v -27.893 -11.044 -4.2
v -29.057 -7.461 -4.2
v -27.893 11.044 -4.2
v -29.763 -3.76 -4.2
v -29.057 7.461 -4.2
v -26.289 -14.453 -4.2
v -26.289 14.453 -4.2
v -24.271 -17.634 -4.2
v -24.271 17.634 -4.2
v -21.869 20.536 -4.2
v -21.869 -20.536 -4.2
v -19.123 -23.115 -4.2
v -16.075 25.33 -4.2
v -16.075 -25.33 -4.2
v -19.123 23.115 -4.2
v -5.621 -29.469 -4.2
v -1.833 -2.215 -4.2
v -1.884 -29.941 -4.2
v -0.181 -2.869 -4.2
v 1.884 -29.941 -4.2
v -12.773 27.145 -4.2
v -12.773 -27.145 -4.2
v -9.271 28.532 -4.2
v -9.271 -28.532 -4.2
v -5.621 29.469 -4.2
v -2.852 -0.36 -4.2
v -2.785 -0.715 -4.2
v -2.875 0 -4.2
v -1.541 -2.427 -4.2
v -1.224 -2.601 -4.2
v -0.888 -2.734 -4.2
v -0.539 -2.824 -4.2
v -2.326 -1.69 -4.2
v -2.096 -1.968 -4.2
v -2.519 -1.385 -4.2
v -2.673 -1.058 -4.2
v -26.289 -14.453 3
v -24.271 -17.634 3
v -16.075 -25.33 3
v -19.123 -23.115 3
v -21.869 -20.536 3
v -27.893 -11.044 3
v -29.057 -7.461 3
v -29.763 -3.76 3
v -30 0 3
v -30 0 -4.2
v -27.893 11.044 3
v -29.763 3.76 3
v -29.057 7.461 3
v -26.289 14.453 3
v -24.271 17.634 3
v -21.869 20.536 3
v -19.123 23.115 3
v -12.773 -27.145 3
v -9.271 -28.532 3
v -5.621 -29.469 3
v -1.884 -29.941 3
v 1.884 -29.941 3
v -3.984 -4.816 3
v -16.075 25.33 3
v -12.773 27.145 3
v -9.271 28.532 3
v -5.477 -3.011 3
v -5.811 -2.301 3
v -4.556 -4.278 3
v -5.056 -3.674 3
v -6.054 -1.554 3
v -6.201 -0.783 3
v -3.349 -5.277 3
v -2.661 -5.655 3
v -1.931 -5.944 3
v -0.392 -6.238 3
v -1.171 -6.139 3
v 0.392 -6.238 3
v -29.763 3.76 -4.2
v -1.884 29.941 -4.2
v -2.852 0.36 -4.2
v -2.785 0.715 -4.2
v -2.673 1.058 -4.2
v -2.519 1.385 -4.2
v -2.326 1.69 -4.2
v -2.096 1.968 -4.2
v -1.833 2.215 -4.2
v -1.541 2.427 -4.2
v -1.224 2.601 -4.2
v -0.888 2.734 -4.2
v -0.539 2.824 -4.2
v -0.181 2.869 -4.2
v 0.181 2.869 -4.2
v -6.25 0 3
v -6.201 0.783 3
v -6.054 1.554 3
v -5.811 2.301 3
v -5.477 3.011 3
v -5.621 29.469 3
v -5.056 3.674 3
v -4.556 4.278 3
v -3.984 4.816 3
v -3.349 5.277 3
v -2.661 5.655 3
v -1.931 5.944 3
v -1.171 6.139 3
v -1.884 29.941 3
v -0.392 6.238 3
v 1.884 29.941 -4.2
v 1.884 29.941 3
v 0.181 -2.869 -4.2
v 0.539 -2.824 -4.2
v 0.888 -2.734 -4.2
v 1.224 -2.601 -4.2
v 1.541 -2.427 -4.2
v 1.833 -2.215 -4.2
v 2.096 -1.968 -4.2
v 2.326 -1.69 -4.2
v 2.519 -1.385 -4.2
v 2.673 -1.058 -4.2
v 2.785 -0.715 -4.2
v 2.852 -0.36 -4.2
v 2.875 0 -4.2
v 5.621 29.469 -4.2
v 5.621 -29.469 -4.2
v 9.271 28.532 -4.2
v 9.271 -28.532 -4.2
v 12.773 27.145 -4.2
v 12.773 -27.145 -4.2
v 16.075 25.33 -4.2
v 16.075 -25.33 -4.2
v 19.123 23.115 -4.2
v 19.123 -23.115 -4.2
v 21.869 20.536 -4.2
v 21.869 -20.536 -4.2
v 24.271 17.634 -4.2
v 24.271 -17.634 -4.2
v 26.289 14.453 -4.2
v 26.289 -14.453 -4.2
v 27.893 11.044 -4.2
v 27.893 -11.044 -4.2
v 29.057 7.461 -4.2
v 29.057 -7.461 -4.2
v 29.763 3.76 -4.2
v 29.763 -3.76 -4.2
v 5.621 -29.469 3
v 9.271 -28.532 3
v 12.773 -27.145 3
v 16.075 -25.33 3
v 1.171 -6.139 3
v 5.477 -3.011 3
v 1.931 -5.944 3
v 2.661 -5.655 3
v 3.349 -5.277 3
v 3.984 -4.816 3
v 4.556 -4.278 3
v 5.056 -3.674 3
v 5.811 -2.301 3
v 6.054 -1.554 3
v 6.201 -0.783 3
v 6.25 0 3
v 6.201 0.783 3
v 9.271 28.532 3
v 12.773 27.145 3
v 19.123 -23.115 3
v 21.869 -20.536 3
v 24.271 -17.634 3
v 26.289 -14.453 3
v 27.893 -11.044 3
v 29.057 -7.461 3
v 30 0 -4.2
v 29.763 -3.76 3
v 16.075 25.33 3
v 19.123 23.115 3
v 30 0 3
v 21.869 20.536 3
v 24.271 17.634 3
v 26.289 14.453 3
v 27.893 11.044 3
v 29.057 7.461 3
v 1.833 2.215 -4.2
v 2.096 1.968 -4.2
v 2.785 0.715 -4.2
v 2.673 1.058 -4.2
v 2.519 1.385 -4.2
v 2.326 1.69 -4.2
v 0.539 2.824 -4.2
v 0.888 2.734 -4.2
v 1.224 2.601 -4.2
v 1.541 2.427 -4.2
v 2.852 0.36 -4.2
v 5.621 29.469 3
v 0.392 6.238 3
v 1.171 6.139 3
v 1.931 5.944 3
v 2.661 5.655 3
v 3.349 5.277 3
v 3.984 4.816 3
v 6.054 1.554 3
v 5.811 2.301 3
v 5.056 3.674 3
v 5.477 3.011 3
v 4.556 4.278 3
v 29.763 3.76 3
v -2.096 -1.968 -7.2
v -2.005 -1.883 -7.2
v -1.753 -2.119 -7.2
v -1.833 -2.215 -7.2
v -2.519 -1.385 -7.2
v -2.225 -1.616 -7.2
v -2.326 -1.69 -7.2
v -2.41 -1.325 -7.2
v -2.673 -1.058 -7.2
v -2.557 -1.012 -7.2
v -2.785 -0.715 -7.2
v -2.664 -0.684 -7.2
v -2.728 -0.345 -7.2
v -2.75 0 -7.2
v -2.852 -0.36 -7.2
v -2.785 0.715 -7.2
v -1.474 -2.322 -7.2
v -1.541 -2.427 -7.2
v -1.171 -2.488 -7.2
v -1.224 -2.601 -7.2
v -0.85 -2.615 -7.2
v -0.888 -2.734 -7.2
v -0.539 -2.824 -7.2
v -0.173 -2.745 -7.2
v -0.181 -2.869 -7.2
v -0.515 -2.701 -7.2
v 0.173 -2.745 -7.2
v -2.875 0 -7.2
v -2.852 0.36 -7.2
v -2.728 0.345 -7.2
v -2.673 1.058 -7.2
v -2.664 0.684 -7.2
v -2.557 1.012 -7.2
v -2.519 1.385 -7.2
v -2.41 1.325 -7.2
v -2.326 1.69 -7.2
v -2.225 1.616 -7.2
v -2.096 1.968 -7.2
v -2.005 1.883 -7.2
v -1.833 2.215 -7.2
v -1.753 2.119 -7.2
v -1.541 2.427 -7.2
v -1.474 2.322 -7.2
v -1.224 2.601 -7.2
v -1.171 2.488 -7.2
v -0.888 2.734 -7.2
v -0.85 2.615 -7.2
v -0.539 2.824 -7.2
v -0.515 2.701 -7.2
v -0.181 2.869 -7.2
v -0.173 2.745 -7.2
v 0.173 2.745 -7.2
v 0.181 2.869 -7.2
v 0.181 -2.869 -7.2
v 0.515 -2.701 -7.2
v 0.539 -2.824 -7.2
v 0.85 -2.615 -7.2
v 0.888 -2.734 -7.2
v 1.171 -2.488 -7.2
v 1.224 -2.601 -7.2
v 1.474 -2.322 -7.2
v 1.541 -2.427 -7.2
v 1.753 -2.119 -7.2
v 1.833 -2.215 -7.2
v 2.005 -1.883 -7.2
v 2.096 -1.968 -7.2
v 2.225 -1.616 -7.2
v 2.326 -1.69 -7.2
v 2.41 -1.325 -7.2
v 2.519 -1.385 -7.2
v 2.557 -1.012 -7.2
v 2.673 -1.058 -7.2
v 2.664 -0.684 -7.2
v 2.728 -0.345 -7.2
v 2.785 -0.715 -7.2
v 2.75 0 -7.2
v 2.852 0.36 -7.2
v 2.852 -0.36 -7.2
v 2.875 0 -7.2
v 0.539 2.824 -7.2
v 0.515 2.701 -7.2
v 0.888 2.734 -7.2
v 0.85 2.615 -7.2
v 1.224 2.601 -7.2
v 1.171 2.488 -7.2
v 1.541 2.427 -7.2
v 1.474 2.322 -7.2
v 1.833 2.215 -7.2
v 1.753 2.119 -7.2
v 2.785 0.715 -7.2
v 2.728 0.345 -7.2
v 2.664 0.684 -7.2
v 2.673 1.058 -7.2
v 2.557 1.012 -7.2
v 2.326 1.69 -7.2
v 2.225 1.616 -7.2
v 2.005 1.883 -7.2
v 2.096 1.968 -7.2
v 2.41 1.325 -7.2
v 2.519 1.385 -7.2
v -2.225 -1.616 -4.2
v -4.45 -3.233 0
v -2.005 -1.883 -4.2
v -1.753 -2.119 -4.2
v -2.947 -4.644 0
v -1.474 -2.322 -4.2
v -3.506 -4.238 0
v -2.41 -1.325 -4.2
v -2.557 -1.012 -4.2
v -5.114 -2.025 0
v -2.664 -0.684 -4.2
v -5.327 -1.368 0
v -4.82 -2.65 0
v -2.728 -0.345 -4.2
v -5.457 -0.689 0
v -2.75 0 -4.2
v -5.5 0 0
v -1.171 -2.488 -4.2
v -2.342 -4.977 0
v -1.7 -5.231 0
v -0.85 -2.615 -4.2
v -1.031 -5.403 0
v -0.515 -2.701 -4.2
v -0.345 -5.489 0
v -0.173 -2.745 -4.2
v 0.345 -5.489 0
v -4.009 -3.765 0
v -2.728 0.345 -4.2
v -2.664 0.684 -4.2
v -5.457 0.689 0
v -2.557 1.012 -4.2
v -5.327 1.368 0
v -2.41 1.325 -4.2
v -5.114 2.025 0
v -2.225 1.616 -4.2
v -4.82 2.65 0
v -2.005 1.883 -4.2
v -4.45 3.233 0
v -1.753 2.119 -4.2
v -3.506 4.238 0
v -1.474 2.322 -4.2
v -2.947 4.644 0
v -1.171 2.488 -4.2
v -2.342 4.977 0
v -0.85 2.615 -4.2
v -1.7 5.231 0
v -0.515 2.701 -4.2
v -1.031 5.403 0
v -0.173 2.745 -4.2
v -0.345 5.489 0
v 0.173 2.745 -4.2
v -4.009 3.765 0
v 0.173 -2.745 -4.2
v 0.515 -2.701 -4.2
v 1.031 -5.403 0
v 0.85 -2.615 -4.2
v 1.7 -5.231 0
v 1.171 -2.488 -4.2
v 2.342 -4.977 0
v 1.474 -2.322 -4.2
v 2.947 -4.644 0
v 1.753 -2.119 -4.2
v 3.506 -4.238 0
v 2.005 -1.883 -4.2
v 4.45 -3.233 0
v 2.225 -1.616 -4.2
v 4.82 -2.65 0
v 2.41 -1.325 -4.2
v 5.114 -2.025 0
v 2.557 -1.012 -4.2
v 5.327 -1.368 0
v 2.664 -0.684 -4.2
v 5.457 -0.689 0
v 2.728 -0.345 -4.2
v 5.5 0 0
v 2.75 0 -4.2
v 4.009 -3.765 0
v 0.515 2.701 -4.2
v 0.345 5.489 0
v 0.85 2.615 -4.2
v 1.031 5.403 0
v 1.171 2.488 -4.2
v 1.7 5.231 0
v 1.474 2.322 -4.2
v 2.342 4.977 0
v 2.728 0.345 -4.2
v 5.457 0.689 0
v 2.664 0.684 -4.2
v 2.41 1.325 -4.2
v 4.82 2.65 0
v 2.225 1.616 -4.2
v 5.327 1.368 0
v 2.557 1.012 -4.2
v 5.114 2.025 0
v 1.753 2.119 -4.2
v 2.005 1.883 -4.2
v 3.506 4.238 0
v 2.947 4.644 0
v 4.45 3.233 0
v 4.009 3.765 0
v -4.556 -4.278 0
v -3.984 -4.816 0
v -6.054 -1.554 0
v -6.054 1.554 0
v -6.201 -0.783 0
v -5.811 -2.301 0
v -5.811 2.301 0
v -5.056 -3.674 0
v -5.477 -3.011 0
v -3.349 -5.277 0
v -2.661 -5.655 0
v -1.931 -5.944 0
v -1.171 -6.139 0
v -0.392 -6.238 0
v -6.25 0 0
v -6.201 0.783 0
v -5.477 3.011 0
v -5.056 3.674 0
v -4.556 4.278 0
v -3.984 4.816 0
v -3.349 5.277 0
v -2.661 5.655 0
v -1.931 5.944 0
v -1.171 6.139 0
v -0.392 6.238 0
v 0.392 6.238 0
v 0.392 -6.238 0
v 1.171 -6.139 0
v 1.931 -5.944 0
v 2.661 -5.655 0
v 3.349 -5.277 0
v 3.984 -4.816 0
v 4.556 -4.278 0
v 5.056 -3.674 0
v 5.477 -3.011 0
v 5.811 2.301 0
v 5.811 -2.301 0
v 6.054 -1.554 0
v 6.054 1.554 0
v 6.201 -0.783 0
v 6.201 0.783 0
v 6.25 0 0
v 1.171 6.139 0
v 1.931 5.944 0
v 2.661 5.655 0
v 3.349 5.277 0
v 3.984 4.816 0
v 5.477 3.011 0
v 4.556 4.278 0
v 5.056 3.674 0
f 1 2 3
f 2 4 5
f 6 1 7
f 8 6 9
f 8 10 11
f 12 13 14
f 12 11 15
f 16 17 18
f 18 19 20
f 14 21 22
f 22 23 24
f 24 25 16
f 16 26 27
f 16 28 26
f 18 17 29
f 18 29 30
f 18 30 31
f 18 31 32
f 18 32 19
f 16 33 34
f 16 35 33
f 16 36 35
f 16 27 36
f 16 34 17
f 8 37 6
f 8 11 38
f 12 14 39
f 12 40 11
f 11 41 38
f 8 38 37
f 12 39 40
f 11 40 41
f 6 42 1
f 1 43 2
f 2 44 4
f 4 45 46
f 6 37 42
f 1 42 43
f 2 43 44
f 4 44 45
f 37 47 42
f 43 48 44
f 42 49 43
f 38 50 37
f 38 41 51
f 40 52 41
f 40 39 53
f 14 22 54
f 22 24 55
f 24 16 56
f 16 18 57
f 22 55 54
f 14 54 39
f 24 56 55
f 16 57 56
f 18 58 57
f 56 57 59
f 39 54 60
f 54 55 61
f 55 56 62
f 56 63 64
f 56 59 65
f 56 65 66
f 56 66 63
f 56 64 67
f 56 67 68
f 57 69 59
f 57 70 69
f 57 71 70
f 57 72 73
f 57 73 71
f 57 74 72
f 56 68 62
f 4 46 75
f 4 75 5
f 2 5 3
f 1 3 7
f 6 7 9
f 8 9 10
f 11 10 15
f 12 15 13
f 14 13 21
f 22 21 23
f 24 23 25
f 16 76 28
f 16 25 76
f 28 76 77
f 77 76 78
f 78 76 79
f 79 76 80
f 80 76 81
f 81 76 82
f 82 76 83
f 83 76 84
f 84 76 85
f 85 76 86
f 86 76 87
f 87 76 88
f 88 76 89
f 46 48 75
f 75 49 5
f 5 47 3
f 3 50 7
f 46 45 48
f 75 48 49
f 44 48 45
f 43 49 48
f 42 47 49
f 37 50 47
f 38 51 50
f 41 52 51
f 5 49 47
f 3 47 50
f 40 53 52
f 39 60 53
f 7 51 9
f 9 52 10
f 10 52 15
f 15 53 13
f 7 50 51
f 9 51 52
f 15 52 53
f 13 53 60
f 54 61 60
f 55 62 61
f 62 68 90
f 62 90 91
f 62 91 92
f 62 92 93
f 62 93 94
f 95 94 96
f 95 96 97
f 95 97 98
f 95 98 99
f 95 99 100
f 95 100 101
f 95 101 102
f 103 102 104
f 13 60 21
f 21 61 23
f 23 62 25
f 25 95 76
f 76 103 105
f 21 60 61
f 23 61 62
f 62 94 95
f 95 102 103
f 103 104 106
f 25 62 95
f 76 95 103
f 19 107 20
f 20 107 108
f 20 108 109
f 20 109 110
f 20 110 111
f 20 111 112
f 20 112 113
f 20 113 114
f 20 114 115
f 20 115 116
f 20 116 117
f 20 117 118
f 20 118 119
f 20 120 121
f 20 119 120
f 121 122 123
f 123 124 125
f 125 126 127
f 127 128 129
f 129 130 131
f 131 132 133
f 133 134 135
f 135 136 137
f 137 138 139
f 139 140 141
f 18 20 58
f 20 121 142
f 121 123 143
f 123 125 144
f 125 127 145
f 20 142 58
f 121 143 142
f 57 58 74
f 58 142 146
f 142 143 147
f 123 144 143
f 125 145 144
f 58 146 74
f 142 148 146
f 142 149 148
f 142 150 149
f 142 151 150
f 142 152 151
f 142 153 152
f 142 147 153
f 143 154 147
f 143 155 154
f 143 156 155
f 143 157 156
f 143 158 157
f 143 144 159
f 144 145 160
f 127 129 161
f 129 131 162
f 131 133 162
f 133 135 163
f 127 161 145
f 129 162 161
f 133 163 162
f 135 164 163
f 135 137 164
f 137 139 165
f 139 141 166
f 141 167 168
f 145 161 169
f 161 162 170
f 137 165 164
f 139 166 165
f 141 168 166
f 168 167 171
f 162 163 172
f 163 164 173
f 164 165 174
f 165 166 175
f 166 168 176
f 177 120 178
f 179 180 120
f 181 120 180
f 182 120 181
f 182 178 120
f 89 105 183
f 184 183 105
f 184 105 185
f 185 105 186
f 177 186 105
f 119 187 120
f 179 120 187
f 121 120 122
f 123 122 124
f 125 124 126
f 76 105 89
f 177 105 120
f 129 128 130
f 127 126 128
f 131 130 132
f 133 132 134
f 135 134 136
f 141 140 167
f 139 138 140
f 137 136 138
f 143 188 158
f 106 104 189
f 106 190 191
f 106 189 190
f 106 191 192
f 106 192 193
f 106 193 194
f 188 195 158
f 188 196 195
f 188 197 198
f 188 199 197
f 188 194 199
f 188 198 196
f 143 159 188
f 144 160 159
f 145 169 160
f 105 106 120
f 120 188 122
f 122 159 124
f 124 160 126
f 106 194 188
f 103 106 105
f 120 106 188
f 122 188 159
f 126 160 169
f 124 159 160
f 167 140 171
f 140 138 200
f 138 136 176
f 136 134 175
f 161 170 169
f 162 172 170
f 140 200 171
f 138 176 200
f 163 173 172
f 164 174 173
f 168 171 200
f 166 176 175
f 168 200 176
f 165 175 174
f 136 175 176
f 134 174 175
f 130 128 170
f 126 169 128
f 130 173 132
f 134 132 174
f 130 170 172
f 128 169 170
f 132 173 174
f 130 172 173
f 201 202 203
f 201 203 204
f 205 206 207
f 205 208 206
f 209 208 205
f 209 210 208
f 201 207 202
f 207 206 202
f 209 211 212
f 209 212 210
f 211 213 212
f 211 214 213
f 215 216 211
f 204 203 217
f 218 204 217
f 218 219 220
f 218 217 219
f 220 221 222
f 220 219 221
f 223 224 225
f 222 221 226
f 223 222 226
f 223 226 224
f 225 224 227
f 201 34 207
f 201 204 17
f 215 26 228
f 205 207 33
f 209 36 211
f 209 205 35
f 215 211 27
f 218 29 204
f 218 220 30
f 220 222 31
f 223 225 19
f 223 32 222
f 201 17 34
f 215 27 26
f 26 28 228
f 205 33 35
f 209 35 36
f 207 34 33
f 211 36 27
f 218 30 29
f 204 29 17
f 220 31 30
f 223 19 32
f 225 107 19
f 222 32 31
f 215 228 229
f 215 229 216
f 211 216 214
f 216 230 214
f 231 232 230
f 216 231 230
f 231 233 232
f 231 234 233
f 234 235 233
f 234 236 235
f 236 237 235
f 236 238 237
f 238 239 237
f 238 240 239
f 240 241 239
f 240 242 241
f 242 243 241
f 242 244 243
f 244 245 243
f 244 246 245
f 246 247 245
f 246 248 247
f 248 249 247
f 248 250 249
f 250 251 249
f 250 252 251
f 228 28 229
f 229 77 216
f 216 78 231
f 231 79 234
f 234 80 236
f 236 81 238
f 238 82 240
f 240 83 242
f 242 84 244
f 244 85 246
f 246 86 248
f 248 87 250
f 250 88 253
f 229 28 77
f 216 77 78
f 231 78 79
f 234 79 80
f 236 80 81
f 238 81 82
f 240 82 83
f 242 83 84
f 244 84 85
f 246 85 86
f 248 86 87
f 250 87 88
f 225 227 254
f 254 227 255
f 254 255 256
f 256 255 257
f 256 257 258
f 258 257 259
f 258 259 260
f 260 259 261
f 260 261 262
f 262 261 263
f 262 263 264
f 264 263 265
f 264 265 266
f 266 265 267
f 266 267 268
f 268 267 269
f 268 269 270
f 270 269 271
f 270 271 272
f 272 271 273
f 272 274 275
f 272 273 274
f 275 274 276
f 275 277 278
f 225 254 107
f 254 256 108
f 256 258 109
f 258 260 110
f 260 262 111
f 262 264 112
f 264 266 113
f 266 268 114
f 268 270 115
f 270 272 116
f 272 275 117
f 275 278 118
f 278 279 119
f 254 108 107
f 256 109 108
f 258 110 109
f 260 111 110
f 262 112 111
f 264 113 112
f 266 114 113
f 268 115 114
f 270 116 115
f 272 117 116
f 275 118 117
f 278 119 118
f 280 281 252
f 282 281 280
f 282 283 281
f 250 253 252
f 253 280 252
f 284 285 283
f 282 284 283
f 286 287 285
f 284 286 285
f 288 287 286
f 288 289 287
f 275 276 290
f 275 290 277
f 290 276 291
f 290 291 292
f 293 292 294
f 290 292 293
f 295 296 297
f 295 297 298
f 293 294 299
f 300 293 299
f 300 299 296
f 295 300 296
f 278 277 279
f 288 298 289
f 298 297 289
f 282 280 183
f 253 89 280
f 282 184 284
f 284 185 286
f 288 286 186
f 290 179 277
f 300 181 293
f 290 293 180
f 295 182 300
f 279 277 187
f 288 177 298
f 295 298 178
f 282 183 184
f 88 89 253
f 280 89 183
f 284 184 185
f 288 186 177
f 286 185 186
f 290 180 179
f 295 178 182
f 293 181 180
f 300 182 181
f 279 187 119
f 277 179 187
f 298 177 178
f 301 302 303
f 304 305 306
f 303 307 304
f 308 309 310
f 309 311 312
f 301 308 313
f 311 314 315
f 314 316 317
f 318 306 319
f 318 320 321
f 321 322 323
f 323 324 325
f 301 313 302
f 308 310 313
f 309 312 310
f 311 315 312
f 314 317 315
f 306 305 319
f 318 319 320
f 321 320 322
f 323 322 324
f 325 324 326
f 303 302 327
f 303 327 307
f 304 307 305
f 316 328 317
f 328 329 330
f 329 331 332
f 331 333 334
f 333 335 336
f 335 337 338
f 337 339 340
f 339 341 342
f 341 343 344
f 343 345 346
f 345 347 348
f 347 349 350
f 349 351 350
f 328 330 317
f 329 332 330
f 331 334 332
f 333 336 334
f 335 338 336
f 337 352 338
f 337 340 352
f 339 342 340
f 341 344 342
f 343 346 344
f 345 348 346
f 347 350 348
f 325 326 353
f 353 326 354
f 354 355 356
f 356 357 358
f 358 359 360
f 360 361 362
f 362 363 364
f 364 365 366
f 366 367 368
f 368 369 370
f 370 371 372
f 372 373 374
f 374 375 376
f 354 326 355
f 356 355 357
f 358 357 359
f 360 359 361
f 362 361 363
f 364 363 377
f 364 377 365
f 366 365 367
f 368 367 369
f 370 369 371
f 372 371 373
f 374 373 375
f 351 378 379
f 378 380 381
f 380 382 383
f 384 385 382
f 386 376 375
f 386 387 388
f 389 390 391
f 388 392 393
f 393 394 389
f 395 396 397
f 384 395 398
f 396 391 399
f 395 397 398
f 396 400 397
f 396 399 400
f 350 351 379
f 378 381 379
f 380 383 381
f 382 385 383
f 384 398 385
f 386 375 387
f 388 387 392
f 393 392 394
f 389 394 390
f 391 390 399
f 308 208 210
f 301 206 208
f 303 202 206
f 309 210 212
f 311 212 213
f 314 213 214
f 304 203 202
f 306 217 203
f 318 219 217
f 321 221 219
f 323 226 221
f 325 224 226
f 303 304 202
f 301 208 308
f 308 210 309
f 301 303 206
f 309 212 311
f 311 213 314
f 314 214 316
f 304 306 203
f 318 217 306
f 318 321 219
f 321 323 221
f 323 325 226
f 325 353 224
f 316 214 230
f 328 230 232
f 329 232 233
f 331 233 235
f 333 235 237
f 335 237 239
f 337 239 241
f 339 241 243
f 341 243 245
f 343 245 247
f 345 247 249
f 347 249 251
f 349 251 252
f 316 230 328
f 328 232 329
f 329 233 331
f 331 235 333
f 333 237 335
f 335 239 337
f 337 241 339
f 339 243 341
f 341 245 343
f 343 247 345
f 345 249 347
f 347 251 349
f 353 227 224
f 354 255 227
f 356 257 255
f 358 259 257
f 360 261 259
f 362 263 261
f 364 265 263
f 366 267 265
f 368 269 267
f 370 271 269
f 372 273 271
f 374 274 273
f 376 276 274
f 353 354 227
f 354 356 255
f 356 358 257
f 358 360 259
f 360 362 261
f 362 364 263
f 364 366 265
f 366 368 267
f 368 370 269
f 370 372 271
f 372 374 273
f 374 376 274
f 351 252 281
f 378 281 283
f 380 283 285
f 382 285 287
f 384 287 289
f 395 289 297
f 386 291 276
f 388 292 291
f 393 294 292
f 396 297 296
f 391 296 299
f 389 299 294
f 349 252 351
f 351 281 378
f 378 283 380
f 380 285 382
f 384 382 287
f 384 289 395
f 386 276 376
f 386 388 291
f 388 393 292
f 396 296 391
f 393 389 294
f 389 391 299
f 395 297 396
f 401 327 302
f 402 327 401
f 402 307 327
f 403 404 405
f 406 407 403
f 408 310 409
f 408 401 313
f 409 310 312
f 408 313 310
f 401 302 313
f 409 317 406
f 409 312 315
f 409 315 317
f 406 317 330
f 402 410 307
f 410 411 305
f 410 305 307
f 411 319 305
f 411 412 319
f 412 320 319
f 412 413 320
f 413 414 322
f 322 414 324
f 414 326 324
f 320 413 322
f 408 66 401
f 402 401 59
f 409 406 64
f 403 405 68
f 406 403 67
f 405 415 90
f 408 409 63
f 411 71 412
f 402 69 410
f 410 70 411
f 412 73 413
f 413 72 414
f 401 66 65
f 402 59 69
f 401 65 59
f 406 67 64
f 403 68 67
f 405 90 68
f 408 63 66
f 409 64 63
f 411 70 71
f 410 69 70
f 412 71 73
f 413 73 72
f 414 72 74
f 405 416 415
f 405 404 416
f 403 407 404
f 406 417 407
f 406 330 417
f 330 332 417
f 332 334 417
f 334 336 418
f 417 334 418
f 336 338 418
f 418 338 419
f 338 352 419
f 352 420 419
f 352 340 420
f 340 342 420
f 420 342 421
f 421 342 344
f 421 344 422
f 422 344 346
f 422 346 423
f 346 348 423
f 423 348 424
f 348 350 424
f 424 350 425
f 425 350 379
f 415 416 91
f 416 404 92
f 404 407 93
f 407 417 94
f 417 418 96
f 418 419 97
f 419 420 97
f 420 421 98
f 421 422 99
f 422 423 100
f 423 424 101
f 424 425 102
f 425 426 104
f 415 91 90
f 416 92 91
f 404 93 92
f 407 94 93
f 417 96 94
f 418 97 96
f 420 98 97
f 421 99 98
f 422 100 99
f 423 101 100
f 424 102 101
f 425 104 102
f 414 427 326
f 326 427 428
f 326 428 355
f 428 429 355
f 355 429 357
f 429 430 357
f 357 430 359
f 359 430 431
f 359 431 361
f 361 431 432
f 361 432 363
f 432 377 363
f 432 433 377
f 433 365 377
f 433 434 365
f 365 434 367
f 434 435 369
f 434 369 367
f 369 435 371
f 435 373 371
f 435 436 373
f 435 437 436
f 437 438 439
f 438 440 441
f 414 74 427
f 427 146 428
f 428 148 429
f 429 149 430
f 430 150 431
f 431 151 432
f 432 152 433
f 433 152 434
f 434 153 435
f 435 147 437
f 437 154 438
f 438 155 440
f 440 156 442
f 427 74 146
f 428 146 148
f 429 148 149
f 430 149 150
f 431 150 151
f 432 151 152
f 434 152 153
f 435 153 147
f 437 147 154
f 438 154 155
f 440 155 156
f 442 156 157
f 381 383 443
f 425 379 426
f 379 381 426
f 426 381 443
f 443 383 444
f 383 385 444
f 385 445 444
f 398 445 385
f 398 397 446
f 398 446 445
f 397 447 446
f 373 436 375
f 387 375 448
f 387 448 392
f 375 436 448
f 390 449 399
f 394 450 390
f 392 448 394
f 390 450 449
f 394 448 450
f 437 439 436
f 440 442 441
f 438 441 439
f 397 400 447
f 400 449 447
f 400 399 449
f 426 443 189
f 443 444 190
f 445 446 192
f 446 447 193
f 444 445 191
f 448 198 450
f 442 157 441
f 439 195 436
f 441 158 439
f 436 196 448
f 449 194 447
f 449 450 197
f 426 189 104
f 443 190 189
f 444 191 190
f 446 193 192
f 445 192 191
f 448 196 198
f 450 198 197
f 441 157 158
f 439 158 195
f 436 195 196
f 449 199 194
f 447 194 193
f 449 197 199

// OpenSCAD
$fn = 50;

difference() {
	union() {
		translate(v = [0, 0, -4.2]) {
			cylinder(h = 7.2, r = 30.0);
		}
		#translate(v = [0, 0, -7.2]) {
			cylinder(h = 7.2, r = 2.875);
		}
	}
	union() {
		translate(v = [0, 0, 0]) {
			rotate(a = [0, 0, 0]) {
				difference() {
					union() {
						translate(v = [0, 0, -7.2]) {
							cylinder(h = 7.2, r = 2.25);
						}
						translate(v = [0, 0, -4.2]) {
							cylinder(h = 4.2, r1 = 2.75, r2 = 5.5);
						}
						translate(v = [0, 0, -7.2]) {
							cylinder(h = 7.2, r = 2.75);
						}
						translate(v = [0, 0, -7.2]) {
							cylinder(h = 7.2, r = 2.25);
						}
					}
					union();
				}
			}
		}
		#cylinder(h = 3, r = 6.25);
	}
}
